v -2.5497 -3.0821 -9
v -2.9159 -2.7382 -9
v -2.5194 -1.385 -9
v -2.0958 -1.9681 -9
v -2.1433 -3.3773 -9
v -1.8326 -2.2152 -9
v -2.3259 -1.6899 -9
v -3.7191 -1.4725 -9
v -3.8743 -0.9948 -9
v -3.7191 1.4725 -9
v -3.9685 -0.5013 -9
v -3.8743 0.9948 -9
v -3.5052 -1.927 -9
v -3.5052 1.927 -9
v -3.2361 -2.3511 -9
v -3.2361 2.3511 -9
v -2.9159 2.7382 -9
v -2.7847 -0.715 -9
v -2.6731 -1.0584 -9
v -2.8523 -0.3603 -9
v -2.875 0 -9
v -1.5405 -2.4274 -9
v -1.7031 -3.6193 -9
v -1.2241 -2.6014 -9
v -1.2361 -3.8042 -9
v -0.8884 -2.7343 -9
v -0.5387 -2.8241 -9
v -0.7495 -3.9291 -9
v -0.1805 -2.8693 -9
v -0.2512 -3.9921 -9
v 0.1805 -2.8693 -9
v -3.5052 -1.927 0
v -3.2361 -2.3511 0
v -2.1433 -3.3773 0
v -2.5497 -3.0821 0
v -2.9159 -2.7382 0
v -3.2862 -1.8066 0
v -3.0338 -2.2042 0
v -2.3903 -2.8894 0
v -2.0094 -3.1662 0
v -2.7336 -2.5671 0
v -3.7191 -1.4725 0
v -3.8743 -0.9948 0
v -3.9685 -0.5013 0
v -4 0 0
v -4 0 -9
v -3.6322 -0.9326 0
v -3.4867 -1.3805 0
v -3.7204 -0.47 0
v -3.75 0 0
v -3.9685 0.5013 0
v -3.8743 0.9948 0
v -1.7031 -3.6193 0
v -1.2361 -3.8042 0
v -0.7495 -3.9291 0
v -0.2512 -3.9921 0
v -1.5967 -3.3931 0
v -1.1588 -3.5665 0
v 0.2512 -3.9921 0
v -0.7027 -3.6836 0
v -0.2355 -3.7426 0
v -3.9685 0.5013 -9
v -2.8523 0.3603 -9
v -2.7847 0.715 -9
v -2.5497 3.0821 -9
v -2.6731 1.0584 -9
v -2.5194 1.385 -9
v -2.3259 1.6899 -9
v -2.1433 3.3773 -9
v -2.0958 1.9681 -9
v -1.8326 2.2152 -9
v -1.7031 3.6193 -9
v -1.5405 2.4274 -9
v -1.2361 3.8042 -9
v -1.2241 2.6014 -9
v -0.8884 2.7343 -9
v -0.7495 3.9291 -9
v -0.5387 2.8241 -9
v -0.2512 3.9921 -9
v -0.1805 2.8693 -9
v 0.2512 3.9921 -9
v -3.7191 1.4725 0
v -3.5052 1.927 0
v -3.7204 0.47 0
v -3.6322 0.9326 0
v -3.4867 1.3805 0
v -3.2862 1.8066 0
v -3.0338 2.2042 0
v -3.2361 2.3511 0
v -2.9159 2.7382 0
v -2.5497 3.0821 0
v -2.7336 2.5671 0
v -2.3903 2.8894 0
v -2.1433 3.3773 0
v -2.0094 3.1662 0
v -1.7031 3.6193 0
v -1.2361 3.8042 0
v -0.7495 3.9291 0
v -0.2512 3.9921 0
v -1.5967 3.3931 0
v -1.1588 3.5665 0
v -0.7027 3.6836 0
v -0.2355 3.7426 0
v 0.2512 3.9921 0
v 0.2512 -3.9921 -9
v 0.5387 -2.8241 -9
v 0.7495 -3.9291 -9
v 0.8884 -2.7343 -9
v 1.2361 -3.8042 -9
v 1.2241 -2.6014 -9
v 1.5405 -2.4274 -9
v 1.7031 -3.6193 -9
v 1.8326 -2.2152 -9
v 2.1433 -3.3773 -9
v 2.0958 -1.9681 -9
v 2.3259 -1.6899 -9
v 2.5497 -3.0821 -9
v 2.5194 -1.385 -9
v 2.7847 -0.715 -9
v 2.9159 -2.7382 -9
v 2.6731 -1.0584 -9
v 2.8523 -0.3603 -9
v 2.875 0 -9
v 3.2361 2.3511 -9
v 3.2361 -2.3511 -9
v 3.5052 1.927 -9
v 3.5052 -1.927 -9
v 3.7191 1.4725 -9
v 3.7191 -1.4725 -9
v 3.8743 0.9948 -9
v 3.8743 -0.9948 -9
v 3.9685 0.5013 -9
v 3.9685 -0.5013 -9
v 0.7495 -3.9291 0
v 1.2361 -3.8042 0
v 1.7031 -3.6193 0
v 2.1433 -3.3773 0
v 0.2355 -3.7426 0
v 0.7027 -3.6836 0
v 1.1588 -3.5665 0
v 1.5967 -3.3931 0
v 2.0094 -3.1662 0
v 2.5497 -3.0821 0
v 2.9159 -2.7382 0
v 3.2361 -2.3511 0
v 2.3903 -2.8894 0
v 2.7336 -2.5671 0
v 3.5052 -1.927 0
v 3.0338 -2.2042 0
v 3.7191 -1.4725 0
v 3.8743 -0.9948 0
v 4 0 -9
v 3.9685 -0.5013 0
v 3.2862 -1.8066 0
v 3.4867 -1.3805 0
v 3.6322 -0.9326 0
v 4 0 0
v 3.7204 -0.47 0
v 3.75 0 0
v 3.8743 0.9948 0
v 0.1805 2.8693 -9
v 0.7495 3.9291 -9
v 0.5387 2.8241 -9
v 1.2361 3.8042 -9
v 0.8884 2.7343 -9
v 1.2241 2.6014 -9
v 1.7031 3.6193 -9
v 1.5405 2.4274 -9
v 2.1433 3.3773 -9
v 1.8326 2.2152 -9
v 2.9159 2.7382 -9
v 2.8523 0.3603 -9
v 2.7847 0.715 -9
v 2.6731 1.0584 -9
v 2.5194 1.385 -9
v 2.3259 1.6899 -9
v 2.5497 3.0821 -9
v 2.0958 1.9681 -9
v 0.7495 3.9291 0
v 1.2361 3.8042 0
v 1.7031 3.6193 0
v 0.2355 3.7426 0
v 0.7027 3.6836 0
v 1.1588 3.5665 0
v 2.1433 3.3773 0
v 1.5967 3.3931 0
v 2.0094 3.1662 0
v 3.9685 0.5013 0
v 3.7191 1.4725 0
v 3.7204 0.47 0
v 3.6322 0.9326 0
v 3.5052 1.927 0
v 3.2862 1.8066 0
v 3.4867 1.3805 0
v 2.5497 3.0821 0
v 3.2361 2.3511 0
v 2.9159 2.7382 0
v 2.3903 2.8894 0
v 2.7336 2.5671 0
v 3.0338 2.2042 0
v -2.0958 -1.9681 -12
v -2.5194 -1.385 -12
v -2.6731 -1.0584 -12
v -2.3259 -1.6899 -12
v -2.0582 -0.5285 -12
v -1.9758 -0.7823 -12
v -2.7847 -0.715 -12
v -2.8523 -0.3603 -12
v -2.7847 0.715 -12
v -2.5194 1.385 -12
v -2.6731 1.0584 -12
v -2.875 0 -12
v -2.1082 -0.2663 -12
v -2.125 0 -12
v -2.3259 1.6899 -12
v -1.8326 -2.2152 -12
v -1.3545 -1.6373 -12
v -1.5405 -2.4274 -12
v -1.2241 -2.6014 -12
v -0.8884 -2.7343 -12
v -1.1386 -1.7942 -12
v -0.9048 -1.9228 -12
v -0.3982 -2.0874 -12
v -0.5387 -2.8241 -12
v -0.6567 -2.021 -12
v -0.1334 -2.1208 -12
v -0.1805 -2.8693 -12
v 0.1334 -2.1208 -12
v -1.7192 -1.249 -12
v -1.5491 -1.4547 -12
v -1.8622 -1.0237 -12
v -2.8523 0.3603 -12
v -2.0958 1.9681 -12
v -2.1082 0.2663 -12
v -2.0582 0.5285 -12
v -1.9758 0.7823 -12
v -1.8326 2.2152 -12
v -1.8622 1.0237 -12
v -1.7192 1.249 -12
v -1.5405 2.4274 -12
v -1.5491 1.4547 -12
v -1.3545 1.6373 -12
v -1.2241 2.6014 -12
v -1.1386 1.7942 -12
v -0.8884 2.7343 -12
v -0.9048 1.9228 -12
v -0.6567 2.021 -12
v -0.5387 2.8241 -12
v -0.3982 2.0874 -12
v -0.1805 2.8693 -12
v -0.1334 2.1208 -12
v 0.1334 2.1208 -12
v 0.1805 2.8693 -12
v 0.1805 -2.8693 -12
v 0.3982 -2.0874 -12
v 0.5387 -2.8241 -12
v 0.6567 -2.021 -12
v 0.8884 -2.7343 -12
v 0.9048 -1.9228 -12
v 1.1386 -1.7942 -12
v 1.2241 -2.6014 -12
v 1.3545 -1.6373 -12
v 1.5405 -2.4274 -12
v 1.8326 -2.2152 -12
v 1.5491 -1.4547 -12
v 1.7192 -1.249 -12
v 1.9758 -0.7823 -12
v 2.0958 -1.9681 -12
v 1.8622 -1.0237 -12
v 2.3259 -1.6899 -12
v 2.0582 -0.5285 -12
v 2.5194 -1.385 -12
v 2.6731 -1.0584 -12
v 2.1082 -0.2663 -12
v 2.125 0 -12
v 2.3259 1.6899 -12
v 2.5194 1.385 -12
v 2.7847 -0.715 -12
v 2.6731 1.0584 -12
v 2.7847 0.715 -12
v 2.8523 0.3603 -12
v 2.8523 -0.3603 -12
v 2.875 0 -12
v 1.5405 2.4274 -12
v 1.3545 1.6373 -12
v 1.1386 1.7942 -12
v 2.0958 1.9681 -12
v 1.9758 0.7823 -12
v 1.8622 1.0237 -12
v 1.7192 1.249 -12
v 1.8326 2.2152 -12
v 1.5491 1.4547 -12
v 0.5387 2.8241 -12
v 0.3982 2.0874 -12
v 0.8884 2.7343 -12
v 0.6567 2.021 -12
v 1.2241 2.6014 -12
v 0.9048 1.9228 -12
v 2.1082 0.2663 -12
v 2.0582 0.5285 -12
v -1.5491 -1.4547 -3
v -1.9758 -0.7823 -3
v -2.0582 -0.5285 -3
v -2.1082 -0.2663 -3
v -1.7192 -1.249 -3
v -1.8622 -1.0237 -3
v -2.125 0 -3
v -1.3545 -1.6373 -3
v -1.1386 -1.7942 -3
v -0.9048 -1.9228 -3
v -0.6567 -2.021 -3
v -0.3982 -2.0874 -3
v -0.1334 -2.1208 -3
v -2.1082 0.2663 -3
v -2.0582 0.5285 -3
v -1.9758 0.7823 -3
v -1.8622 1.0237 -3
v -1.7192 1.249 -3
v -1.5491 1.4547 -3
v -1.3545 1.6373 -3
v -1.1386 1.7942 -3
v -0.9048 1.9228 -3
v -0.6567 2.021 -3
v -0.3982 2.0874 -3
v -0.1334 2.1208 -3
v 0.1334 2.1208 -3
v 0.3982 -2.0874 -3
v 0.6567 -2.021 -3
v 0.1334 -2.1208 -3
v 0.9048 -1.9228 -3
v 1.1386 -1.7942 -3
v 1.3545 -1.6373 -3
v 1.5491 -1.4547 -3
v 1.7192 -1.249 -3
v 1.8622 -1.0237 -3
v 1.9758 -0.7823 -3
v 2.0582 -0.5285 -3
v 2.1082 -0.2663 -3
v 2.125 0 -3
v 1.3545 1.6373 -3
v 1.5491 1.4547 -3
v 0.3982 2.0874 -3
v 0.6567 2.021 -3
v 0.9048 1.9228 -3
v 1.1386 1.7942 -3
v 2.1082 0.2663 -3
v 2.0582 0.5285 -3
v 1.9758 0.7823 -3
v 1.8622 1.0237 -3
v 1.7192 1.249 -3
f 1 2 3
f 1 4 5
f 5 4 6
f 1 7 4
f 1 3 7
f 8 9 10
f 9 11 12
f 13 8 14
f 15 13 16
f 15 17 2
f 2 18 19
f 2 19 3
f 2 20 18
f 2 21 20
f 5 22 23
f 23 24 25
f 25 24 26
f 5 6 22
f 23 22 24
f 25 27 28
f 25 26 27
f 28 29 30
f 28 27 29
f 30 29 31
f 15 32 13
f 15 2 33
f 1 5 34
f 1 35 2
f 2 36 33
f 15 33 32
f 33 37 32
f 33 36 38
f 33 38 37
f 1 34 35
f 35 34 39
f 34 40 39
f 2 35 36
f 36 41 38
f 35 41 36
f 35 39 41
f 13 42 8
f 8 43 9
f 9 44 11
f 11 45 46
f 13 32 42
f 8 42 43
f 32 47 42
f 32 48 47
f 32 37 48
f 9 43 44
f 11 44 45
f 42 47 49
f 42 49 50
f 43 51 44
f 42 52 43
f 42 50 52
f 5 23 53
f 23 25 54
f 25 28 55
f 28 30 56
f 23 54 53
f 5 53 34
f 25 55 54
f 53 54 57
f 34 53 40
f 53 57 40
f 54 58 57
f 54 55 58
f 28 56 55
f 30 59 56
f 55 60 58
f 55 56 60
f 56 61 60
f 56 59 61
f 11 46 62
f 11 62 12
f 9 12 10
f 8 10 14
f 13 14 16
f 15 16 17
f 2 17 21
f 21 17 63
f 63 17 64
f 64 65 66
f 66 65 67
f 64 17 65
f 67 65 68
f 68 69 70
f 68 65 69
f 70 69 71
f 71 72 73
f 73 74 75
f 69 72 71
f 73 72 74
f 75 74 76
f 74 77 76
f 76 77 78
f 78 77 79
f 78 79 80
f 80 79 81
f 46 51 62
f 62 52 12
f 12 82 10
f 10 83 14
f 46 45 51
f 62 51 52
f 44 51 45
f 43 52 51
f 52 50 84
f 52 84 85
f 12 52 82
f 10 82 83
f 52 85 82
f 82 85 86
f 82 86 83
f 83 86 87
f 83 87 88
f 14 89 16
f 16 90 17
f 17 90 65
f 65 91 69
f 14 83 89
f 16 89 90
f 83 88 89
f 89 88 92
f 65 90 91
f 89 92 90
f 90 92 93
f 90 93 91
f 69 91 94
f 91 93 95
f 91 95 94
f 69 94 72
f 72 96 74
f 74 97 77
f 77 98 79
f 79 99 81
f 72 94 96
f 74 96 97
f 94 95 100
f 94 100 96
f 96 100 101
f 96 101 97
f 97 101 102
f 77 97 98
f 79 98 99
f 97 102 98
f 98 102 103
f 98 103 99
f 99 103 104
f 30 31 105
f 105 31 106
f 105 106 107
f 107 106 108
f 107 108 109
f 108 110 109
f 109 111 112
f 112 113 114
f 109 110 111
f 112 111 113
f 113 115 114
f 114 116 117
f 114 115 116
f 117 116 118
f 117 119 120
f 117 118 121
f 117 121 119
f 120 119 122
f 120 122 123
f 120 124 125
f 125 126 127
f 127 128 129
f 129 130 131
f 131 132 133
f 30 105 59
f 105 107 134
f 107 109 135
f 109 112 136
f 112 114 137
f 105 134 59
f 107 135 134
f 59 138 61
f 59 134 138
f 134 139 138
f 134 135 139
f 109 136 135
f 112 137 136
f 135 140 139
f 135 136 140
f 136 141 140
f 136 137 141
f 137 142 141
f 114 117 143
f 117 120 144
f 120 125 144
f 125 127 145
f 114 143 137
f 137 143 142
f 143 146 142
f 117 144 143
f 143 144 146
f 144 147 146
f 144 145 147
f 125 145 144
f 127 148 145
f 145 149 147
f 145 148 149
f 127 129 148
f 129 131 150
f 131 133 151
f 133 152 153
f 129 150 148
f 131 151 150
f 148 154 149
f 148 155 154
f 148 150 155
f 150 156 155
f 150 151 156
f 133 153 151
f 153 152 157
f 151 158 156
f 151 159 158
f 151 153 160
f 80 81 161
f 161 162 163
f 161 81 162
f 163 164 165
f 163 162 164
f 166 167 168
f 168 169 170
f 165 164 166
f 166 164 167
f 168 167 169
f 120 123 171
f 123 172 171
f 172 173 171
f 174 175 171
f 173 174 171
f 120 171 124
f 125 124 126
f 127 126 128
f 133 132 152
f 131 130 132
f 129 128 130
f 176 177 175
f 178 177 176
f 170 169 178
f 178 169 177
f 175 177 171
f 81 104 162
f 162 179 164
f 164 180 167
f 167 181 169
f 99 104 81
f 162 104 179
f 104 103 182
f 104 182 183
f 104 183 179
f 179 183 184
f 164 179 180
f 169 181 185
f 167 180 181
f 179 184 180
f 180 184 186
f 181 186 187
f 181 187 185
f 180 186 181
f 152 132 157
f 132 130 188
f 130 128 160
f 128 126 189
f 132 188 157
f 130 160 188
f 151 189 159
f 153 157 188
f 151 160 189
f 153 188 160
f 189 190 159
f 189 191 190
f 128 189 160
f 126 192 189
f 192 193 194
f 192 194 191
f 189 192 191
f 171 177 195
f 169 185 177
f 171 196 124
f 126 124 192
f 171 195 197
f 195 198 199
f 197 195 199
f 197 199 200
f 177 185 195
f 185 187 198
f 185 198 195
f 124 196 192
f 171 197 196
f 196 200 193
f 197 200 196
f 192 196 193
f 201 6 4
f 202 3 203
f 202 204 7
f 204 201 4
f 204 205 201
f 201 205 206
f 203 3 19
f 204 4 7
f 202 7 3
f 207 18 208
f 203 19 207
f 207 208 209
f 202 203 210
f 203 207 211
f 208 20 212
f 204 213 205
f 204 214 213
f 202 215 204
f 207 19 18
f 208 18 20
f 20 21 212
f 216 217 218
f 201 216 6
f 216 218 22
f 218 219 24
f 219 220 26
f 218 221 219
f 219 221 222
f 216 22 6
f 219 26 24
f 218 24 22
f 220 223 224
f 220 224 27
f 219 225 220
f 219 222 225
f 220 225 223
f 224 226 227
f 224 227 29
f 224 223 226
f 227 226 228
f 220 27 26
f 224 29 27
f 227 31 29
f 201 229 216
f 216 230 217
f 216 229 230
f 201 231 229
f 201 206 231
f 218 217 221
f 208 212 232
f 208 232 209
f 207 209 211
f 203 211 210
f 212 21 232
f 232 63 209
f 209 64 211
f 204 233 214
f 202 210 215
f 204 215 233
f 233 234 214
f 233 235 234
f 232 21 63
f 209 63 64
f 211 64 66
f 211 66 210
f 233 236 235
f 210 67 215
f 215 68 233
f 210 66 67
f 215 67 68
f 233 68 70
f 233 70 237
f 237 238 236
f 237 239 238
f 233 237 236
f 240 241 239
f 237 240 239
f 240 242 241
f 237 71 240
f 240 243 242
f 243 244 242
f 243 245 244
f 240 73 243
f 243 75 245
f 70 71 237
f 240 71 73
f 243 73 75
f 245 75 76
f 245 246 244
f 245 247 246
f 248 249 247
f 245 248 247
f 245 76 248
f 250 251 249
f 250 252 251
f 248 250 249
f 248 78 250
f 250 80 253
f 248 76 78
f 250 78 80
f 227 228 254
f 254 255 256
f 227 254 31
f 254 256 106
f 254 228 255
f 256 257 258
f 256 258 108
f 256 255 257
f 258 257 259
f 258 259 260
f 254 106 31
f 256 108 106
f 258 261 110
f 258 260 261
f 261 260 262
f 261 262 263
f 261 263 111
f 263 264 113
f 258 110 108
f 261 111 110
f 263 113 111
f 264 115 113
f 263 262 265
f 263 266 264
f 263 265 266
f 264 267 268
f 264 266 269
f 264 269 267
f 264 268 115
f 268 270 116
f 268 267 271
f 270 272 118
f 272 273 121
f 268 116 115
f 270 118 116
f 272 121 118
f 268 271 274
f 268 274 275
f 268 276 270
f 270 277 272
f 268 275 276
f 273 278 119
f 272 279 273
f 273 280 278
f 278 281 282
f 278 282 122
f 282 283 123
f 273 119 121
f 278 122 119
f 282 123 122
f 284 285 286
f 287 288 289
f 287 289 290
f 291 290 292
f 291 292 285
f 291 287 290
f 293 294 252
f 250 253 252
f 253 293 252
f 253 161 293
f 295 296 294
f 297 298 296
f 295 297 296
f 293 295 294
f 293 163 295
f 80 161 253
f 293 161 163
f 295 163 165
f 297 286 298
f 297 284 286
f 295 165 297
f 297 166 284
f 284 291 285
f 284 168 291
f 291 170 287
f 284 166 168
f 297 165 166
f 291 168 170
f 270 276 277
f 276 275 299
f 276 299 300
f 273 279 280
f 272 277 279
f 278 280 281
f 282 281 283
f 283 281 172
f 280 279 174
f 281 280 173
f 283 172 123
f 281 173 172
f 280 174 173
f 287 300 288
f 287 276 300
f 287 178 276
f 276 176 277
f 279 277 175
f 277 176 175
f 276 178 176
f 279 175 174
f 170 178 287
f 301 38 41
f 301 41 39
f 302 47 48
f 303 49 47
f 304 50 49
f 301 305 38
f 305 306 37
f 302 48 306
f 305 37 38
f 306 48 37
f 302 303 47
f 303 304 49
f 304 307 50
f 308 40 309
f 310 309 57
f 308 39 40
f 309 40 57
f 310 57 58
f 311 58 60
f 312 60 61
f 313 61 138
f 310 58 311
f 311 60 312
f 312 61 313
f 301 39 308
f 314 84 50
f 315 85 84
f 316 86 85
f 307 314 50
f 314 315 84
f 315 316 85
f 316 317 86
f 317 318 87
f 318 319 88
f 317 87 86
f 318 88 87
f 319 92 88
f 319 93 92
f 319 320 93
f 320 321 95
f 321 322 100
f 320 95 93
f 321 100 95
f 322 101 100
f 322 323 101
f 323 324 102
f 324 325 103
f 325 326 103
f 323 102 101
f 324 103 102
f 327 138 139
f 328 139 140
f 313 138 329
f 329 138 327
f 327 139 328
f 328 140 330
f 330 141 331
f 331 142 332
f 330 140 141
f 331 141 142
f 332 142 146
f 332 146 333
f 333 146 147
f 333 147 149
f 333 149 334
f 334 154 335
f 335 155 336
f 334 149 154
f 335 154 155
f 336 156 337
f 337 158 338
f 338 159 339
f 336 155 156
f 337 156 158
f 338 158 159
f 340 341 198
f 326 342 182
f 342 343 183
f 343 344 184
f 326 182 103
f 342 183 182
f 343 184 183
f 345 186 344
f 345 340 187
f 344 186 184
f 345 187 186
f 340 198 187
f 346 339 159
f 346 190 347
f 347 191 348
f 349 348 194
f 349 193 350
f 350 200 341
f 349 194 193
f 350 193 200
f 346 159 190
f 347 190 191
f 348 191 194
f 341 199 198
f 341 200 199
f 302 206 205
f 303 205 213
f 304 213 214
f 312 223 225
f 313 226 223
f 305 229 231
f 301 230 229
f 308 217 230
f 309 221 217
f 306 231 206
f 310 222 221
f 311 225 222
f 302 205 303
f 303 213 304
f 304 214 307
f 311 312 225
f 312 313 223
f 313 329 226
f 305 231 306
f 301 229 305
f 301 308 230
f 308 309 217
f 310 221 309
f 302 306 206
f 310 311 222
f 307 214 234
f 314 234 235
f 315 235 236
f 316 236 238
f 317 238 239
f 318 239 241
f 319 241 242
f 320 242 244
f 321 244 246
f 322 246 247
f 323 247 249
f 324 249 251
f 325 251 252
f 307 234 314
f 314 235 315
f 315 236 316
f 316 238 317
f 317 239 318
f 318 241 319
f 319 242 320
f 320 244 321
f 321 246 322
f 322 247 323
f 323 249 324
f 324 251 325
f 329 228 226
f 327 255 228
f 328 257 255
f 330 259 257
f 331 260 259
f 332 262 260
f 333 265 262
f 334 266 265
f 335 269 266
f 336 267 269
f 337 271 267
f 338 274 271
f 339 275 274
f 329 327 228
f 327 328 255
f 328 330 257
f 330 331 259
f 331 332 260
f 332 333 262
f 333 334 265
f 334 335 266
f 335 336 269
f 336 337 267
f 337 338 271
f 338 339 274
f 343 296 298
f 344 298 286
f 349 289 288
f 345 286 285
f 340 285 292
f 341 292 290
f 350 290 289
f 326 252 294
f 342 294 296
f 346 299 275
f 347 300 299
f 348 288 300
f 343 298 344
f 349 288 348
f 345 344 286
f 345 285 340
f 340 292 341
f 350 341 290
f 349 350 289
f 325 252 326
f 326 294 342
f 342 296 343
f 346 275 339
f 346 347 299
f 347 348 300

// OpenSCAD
$fn = 50;

difference() {
	union() {
		translate(v = [0, 0, -9.0]) {
			cylinder(h = 9, r = 4.0);
		}
		#translate(v = [0, 0, -12.0]) {
			cylinder(h = 12, r = 2.875);
		}
	}
	union() {
		translate(v = [0, 0, 0]) {
			rotate(a = [0, 0, 0]) {
				difference() {
					union() {
						translate(v = [0, 0, -12.0]) {
							cylinder(h = 12, r = 2.0);
						}
						translate(v = [0, 0, -3]) {
							cylinder(h = 3, r1 = 2.125, r2 = 3.75);
						}
						translate(v = [0, 0, -12.0]) {
							cylinder(h = 12, r = 2.125);
						}
						translate(v = [0, 0, -12.0]) {
							cylinder(h = 12, r = 2.0);
						}
					}
					union();
				}
			}
		}
	}
}
